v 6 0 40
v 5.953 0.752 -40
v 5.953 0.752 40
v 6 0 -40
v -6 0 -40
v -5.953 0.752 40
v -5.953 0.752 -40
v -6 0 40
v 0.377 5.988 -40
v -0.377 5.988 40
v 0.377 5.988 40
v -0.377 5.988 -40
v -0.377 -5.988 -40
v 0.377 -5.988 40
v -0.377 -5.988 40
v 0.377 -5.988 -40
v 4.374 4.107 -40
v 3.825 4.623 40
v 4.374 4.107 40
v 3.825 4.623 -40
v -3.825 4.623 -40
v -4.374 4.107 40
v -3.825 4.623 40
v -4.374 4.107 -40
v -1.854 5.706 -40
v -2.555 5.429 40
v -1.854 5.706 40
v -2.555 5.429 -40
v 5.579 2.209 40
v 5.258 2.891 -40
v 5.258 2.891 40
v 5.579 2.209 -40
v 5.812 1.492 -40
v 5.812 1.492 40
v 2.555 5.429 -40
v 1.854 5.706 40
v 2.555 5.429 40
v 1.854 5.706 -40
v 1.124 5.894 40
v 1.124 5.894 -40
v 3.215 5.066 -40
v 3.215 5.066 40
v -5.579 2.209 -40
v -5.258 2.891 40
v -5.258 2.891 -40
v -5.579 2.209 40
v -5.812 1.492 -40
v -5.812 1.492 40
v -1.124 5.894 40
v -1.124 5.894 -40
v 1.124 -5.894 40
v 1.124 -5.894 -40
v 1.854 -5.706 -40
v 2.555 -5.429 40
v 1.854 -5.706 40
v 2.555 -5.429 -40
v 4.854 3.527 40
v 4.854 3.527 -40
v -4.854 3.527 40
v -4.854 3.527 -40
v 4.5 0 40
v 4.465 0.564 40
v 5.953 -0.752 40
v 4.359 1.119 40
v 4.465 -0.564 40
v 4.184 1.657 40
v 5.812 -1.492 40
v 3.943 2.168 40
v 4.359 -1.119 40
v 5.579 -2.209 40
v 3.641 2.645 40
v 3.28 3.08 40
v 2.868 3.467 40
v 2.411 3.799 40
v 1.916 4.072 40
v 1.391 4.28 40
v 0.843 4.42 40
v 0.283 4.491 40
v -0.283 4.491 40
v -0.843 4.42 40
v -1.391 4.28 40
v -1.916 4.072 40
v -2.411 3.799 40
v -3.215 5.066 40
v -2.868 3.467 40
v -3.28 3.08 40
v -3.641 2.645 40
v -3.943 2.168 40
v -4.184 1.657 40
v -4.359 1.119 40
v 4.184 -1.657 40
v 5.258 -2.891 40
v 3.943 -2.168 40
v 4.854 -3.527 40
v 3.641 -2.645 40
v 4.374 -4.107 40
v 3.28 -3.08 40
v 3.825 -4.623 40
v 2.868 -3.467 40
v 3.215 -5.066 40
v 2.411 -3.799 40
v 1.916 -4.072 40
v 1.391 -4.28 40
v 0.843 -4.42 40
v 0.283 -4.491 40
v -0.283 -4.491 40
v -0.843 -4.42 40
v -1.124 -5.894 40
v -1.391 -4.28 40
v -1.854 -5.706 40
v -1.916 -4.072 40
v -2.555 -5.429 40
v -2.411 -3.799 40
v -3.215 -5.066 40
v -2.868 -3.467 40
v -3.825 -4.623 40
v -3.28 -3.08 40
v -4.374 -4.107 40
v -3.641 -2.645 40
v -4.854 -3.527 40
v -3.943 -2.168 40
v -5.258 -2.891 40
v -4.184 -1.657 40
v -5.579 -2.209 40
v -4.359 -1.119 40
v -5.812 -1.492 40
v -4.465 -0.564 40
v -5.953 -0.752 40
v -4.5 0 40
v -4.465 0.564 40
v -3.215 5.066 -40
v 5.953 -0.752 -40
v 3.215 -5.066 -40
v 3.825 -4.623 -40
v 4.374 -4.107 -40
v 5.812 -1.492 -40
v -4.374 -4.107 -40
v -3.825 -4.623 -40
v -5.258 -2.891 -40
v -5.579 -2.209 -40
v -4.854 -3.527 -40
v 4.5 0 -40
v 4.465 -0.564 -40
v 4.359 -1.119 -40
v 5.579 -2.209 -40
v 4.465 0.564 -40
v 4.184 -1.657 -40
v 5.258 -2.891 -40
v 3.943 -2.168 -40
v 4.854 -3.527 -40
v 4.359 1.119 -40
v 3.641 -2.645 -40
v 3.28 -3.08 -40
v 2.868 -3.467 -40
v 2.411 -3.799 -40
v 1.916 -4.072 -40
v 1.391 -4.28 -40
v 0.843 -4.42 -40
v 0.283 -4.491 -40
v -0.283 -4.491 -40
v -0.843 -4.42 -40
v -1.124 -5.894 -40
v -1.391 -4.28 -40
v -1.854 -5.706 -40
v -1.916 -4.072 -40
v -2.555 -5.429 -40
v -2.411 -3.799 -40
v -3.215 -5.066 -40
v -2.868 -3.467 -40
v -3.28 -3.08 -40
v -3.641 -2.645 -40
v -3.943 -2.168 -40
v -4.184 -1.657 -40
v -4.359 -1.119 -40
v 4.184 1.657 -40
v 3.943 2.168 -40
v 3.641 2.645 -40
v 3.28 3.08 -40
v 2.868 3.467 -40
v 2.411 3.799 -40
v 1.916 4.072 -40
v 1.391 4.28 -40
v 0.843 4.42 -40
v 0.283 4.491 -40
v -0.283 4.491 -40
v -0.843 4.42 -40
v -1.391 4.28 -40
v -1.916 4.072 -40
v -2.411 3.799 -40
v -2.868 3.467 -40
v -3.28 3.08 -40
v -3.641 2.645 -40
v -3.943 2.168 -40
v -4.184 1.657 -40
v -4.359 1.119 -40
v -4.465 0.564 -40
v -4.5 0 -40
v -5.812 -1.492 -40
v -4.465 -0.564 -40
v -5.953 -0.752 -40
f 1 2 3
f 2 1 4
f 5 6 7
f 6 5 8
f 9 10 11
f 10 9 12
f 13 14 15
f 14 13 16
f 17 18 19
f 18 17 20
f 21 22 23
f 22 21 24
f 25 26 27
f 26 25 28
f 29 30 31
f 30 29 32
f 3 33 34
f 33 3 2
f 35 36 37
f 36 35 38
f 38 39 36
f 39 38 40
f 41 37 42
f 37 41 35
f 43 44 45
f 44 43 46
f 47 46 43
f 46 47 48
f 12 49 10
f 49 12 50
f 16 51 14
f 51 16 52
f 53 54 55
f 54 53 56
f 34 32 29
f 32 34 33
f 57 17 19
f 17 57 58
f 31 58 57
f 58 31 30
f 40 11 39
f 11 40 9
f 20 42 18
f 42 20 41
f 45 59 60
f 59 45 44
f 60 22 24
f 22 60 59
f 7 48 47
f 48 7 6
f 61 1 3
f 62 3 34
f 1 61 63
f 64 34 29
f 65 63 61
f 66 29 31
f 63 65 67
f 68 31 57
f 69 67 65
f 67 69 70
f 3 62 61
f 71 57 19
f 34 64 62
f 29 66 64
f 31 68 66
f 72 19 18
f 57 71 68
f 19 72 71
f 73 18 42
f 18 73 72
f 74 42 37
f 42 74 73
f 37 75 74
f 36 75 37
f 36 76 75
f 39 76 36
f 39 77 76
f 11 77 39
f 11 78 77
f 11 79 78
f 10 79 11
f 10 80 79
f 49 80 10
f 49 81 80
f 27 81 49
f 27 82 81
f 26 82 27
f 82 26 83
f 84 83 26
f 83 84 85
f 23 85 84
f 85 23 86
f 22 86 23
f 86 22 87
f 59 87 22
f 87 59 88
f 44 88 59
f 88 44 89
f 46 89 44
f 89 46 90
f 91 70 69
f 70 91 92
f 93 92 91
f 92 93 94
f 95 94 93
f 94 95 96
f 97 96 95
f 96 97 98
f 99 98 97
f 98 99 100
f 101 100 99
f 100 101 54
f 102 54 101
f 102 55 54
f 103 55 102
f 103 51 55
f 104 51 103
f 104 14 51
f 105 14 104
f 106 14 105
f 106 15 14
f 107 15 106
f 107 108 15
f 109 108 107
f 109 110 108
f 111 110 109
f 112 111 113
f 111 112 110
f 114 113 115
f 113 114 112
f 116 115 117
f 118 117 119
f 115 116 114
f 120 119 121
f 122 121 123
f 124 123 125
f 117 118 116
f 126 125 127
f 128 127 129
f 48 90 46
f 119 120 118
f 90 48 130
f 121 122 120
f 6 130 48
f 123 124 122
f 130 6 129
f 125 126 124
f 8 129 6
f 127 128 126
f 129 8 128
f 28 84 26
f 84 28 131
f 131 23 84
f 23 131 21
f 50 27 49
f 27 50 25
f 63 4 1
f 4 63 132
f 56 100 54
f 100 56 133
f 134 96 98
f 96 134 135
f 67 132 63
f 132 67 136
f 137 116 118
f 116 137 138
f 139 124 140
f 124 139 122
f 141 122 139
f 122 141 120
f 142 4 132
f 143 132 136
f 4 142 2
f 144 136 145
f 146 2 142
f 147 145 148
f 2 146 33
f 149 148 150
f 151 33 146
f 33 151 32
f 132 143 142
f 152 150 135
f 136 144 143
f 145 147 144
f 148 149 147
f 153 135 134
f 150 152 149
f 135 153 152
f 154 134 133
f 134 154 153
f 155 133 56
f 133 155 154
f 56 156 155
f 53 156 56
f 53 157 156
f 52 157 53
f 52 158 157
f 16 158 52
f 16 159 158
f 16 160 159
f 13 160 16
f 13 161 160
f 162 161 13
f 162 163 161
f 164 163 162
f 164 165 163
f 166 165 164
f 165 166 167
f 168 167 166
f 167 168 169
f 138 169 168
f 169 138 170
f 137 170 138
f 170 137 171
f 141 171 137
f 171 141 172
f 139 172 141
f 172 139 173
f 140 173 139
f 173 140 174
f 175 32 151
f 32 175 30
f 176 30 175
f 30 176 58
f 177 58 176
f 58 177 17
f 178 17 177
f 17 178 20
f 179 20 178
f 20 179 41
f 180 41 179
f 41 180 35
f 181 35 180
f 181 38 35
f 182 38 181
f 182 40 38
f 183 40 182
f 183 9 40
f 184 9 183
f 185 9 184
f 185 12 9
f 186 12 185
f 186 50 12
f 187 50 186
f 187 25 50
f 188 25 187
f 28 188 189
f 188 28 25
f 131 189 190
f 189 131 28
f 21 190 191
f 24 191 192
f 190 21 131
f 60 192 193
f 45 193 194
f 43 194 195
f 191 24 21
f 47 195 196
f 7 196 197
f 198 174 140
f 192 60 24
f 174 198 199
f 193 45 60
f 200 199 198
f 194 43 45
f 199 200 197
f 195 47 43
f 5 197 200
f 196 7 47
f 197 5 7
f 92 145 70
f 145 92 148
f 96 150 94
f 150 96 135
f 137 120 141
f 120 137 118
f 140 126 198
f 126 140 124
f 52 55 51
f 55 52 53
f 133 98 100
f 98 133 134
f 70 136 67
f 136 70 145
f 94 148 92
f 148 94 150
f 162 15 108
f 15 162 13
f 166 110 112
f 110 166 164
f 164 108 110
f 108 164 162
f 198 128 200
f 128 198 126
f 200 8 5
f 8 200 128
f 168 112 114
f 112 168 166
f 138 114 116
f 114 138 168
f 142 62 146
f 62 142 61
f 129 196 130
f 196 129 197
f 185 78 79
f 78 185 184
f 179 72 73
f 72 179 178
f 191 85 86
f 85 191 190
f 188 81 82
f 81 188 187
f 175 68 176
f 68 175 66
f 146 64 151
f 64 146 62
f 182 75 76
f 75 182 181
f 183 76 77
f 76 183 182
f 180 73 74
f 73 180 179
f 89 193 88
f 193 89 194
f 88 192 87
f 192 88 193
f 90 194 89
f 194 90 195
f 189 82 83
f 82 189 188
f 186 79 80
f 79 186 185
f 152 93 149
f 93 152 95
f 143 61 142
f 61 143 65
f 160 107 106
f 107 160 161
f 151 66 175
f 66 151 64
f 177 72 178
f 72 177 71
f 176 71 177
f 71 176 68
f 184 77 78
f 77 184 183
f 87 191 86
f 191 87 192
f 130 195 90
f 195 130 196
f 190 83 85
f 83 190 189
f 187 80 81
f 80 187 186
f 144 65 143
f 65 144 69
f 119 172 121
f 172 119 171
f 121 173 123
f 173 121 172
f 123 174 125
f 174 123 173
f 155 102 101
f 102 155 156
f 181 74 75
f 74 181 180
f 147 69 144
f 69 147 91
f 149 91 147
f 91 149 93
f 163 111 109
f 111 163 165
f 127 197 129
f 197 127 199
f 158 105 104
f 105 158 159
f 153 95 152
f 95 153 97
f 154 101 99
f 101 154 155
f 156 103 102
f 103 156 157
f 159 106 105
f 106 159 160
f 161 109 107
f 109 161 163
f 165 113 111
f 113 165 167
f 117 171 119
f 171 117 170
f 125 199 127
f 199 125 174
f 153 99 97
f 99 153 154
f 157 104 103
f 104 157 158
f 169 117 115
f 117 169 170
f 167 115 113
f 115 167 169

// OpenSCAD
$fn = 50;


difference() {
	union() {
		translate(v = [0, 0, -40.0000000000]) {
			cylinder(h = 80, r = 6.0000000000);
		}
	}
	union() {
		translate(v = [0, 0, -100.0000000000]) {
			cylinder(h = 200, r = 4.5000000000);
		}
	}
}
